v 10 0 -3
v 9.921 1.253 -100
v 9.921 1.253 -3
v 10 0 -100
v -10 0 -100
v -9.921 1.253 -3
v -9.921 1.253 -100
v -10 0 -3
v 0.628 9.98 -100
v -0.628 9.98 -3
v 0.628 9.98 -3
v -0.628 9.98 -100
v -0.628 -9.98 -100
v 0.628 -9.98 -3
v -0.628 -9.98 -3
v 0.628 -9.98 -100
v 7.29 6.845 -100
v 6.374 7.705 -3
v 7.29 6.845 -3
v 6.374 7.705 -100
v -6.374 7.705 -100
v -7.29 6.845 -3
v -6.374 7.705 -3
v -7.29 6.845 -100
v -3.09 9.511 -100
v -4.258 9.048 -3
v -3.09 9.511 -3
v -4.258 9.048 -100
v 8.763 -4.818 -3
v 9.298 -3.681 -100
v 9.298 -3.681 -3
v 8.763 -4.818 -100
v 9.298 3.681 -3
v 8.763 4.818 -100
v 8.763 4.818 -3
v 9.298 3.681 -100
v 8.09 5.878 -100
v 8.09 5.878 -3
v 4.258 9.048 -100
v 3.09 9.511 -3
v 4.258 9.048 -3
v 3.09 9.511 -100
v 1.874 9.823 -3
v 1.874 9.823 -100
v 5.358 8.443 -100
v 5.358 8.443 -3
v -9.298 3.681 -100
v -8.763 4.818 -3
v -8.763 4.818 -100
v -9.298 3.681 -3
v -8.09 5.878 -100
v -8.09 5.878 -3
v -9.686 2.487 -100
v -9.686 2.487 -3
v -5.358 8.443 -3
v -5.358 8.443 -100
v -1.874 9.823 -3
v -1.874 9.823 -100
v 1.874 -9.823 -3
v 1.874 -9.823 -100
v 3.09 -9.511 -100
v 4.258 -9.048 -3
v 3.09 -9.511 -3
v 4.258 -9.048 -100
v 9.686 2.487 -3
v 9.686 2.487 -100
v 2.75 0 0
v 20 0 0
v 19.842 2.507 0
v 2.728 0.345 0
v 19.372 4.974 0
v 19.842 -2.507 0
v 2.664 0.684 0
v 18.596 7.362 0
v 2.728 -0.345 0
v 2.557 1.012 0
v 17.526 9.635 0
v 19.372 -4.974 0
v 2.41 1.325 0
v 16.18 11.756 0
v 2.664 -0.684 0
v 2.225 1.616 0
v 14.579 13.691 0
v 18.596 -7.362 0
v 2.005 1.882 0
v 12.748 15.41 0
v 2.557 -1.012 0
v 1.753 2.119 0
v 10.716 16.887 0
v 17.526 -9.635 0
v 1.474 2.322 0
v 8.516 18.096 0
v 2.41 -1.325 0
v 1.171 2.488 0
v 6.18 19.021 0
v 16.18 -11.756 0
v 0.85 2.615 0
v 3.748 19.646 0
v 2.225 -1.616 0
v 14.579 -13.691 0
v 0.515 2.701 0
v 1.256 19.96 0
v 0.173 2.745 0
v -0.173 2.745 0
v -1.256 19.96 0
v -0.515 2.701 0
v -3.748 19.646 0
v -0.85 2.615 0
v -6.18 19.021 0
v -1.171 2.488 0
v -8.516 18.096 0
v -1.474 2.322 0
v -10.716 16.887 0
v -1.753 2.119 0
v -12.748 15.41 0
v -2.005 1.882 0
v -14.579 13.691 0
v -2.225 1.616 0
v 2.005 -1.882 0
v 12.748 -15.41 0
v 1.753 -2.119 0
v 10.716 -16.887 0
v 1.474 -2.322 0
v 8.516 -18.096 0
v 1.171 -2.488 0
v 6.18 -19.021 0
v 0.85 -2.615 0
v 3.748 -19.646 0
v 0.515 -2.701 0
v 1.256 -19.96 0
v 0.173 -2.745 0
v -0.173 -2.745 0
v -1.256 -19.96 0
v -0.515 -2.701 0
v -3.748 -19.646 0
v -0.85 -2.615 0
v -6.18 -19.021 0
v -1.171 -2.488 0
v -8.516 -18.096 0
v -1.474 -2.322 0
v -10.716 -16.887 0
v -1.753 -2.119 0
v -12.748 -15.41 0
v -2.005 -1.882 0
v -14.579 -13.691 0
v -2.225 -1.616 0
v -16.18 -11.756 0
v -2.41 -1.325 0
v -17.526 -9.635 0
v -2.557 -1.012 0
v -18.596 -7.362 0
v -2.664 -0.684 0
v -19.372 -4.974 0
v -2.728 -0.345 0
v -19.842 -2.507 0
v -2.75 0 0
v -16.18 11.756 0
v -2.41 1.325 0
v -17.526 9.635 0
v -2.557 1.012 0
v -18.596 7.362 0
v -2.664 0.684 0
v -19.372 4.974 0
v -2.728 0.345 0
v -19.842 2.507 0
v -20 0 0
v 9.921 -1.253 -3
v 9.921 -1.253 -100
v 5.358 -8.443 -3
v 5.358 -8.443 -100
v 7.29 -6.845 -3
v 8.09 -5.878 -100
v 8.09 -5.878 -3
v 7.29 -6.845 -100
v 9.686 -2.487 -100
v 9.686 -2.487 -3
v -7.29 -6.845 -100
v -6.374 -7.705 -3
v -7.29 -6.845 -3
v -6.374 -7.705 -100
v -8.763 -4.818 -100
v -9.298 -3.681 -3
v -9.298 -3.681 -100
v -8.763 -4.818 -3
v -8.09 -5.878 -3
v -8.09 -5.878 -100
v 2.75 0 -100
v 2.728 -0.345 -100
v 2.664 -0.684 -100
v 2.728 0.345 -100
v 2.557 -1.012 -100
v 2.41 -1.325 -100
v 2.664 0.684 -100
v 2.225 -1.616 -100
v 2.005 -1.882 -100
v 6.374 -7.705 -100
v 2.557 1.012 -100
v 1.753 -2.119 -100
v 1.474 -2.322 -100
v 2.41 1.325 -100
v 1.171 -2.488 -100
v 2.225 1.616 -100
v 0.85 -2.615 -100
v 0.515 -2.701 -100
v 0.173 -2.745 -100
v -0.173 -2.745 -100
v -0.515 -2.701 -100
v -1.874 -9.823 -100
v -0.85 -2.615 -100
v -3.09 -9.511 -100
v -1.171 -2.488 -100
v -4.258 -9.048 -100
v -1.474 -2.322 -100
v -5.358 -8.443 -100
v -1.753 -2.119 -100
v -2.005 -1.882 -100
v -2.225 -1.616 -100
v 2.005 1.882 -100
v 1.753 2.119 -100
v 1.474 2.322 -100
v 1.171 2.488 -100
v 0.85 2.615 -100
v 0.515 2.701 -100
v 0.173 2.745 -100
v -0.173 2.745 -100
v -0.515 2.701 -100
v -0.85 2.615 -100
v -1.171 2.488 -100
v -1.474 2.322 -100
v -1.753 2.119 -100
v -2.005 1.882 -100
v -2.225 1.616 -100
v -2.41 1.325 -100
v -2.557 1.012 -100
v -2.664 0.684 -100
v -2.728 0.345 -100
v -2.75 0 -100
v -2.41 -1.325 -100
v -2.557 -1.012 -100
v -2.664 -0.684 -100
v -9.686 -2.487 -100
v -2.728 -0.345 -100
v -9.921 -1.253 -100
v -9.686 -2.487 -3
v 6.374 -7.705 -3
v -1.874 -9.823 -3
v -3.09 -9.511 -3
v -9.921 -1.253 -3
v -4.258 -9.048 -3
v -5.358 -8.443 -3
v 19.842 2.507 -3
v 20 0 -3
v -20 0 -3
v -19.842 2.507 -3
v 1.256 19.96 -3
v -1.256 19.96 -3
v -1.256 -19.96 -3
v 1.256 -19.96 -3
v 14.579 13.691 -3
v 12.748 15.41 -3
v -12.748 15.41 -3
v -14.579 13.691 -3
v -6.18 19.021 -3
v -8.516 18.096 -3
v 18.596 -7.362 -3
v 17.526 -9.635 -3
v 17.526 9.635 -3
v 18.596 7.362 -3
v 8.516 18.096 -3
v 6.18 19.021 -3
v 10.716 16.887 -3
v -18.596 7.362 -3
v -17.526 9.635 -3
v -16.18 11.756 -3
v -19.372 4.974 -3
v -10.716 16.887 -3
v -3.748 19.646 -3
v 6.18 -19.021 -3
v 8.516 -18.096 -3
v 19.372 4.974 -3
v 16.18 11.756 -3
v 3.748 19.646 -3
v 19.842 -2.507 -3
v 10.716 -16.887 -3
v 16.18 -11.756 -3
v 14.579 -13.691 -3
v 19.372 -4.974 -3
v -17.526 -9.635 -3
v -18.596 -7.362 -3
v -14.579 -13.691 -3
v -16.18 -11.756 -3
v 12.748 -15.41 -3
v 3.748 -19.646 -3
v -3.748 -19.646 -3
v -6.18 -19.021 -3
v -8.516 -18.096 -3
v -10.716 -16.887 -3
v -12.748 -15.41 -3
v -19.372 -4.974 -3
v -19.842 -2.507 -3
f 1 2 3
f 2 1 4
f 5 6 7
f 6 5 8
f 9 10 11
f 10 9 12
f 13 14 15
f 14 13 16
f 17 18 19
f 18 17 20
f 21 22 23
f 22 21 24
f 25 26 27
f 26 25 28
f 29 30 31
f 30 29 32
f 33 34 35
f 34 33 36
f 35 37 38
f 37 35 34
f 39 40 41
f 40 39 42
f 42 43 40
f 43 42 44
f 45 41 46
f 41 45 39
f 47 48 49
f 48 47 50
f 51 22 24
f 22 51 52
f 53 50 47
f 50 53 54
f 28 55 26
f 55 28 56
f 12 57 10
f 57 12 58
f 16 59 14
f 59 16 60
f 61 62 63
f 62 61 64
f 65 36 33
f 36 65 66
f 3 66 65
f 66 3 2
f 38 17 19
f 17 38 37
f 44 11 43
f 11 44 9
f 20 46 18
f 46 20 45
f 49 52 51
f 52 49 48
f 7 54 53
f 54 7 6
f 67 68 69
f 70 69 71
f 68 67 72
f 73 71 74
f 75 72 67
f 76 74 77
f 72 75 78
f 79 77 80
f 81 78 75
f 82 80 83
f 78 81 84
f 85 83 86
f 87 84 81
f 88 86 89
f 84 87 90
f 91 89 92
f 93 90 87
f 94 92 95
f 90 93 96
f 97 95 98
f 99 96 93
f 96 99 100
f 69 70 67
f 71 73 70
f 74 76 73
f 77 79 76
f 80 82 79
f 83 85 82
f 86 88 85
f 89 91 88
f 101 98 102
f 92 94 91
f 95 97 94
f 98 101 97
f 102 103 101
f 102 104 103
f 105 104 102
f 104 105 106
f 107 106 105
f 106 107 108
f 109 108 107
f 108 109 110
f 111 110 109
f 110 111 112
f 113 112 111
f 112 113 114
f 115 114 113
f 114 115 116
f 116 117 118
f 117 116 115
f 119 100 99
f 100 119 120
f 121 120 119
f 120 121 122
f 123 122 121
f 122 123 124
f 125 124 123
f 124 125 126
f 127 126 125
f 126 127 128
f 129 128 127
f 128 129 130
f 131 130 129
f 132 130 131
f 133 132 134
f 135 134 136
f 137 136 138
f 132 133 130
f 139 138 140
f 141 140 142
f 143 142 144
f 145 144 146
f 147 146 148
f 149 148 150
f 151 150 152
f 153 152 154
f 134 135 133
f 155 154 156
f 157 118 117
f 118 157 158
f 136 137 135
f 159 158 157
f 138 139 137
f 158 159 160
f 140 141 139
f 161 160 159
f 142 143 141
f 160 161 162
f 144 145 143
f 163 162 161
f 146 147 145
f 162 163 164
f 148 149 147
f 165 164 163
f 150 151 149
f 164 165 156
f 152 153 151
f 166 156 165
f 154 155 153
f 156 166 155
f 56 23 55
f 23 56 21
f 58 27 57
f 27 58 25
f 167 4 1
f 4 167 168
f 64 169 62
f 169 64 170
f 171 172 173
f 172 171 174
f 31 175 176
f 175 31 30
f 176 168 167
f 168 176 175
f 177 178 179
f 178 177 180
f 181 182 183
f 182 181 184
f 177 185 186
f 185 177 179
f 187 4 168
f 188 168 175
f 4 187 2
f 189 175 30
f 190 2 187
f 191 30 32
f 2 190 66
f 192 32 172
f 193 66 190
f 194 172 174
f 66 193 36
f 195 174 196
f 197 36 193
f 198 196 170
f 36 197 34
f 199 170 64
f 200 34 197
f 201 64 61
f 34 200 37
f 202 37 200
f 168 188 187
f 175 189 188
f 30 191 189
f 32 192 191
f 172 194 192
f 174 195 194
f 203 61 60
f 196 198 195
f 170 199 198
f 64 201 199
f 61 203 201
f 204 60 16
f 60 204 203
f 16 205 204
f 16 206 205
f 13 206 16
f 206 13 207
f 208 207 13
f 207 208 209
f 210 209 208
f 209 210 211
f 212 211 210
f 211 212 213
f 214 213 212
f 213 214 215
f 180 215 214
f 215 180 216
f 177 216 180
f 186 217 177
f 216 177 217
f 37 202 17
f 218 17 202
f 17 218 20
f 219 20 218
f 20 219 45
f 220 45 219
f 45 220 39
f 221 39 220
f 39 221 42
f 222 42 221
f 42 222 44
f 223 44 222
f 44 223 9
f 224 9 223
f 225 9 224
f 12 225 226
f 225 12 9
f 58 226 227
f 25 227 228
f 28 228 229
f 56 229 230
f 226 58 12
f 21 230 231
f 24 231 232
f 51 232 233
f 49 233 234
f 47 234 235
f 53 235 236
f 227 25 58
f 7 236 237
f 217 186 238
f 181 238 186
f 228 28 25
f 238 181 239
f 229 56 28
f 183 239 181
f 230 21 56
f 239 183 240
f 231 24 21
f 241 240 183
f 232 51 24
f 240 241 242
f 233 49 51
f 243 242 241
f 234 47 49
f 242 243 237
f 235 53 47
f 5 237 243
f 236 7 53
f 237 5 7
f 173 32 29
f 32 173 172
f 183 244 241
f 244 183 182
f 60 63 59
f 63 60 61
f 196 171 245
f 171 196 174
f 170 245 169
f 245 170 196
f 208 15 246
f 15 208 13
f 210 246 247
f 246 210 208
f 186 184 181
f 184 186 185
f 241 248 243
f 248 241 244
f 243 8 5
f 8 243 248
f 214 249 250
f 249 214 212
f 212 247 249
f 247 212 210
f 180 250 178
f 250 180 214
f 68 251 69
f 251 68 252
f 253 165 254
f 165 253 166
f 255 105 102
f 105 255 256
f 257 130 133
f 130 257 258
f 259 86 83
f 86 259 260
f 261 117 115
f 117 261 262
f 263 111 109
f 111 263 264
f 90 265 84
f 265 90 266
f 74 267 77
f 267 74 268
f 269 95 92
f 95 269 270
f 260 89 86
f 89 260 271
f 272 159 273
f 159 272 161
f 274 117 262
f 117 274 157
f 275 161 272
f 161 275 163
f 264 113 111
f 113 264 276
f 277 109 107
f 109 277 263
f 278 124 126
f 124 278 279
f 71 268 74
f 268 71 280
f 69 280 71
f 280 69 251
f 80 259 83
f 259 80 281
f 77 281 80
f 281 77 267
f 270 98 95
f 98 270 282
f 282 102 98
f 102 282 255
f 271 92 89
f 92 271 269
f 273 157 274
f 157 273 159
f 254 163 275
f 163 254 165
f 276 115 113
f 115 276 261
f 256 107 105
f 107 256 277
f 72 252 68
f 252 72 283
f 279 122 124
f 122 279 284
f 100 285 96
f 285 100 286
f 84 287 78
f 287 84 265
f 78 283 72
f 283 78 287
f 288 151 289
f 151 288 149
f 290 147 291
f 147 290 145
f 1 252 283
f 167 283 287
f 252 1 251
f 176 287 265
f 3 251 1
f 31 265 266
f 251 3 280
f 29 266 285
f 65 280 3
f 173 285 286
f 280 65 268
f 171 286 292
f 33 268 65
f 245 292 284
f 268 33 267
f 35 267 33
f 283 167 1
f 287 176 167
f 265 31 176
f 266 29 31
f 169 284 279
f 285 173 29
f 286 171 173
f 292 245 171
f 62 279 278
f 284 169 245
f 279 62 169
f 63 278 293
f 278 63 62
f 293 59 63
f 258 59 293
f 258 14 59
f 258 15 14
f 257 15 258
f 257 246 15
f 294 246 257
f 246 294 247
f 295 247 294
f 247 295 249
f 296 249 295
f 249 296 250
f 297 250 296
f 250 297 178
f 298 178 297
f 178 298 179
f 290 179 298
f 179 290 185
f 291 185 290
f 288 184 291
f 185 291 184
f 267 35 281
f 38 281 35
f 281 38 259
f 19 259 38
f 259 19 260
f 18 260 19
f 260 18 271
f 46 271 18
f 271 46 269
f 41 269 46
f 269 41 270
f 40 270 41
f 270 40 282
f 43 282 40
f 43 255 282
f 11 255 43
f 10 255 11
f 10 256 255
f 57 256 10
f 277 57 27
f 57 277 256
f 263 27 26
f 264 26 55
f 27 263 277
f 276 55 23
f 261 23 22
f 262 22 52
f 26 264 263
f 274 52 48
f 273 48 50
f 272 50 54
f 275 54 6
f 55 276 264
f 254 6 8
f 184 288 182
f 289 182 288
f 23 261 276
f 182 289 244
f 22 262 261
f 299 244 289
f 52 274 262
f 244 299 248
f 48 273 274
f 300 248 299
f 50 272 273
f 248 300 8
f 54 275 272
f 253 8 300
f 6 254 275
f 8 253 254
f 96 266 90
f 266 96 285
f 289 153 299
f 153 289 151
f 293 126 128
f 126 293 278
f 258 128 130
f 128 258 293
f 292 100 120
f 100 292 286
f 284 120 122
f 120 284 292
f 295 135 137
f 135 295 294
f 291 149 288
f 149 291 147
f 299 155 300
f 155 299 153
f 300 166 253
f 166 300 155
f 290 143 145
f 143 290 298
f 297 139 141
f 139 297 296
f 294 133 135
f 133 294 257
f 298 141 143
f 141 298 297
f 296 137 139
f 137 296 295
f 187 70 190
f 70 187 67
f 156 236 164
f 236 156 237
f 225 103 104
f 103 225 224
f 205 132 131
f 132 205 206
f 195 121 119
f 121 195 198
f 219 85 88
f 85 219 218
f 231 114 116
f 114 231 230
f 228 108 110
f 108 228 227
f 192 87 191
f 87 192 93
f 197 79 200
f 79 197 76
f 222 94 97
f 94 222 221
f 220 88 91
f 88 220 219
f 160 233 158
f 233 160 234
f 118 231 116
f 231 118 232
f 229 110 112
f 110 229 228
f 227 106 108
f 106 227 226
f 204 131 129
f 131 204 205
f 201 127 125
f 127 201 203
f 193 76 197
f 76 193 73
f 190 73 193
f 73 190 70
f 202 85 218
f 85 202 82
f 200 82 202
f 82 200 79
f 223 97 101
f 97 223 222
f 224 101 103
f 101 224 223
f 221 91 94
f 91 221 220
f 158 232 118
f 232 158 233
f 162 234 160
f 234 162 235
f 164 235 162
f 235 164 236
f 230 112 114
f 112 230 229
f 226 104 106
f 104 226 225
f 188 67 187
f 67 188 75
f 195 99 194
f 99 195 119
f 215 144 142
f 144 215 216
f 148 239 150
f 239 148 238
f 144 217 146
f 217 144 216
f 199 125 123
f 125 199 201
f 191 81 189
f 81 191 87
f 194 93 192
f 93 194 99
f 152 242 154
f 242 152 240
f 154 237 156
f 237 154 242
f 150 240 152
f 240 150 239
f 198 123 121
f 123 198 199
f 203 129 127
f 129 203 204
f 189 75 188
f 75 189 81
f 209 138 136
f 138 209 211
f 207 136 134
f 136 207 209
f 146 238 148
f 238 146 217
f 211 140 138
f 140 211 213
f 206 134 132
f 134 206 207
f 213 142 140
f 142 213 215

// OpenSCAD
$fn = 50;


difference() {
	union() {
		translate(v = [0, 0, -100.0000000000]) {
			cylinder(h = 100, r = 10.0000000000);
		}
		translate(v = [0, 0, -3.0000000000]) {
			cylinder(h = 3, r = 20.0000000000);
		}
	}
	union() {
		#translate(v = [0, 0, -100]) {
			cylinder(h = 100, r = 2.7500000000);
		}
	}
}
